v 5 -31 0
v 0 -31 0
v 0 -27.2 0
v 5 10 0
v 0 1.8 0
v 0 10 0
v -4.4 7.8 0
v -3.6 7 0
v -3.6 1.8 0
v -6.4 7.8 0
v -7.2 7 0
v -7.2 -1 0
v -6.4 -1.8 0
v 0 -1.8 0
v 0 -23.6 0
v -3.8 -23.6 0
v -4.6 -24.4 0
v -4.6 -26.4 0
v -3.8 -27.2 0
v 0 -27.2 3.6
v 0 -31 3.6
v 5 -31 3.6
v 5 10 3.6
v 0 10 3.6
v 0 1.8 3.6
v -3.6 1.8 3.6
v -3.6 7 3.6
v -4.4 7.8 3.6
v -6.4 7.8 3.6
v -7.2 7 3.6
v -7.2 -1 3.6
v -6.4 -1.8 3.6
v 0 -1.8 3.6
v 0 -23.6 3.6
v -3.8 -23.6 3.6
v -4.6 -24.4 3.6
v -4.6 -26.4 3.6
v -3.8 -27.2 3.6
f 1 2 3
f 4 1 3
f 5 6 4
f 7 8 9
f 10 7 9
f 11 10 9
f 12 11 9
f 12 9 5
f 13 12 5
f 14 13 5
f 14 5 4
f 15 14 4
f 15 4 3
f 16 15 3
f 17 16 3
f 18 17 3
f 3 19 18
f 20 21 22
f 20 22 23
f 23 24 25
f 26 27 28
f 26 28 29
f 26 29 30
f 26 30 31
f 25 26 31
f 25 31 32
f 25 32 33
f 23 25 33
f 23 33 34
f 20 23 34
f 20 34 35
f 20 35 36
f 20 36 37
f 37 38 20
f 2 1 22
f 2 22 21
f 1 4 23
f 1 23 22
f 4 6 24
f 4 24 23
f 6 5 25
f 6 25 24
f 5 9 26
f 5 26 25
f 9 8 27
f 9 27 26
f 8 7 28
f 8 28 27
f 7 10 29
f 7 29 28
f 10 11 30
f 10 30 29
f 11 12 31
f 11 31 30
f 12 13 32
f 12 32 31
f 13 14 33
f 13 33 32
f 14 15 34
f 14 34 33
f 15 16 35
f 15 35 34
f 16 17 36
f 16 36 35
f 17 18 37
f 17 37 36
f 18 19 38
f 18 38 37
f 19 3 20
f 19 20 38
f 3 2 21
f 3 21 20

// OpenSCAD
// Fit coupon only, not a rated hanger. Side-down print orientation.
// Intended board thickness 3.2 mm; gap includes 0.4 mm clearance.
linear_extrude(height=3.6) polygon(points=[[0, -31], [5, -31], [5, 10], [0, 10], [0, 1.8], [-3.6, 1.8], [-3.6, 7.0], [-4.4, 7.8], [-6.4, 7.8], [-7.2, 7.0], [-7.2, -1.0], [-6.4, -1.8], [0, -1.8], [0, -23.6], [-3.8000000000000003, -23.6], [-4.6, -24.4], [-4.6, -26.4], [-3.8000000000000003, -27.2], [0, -27.2]]);
